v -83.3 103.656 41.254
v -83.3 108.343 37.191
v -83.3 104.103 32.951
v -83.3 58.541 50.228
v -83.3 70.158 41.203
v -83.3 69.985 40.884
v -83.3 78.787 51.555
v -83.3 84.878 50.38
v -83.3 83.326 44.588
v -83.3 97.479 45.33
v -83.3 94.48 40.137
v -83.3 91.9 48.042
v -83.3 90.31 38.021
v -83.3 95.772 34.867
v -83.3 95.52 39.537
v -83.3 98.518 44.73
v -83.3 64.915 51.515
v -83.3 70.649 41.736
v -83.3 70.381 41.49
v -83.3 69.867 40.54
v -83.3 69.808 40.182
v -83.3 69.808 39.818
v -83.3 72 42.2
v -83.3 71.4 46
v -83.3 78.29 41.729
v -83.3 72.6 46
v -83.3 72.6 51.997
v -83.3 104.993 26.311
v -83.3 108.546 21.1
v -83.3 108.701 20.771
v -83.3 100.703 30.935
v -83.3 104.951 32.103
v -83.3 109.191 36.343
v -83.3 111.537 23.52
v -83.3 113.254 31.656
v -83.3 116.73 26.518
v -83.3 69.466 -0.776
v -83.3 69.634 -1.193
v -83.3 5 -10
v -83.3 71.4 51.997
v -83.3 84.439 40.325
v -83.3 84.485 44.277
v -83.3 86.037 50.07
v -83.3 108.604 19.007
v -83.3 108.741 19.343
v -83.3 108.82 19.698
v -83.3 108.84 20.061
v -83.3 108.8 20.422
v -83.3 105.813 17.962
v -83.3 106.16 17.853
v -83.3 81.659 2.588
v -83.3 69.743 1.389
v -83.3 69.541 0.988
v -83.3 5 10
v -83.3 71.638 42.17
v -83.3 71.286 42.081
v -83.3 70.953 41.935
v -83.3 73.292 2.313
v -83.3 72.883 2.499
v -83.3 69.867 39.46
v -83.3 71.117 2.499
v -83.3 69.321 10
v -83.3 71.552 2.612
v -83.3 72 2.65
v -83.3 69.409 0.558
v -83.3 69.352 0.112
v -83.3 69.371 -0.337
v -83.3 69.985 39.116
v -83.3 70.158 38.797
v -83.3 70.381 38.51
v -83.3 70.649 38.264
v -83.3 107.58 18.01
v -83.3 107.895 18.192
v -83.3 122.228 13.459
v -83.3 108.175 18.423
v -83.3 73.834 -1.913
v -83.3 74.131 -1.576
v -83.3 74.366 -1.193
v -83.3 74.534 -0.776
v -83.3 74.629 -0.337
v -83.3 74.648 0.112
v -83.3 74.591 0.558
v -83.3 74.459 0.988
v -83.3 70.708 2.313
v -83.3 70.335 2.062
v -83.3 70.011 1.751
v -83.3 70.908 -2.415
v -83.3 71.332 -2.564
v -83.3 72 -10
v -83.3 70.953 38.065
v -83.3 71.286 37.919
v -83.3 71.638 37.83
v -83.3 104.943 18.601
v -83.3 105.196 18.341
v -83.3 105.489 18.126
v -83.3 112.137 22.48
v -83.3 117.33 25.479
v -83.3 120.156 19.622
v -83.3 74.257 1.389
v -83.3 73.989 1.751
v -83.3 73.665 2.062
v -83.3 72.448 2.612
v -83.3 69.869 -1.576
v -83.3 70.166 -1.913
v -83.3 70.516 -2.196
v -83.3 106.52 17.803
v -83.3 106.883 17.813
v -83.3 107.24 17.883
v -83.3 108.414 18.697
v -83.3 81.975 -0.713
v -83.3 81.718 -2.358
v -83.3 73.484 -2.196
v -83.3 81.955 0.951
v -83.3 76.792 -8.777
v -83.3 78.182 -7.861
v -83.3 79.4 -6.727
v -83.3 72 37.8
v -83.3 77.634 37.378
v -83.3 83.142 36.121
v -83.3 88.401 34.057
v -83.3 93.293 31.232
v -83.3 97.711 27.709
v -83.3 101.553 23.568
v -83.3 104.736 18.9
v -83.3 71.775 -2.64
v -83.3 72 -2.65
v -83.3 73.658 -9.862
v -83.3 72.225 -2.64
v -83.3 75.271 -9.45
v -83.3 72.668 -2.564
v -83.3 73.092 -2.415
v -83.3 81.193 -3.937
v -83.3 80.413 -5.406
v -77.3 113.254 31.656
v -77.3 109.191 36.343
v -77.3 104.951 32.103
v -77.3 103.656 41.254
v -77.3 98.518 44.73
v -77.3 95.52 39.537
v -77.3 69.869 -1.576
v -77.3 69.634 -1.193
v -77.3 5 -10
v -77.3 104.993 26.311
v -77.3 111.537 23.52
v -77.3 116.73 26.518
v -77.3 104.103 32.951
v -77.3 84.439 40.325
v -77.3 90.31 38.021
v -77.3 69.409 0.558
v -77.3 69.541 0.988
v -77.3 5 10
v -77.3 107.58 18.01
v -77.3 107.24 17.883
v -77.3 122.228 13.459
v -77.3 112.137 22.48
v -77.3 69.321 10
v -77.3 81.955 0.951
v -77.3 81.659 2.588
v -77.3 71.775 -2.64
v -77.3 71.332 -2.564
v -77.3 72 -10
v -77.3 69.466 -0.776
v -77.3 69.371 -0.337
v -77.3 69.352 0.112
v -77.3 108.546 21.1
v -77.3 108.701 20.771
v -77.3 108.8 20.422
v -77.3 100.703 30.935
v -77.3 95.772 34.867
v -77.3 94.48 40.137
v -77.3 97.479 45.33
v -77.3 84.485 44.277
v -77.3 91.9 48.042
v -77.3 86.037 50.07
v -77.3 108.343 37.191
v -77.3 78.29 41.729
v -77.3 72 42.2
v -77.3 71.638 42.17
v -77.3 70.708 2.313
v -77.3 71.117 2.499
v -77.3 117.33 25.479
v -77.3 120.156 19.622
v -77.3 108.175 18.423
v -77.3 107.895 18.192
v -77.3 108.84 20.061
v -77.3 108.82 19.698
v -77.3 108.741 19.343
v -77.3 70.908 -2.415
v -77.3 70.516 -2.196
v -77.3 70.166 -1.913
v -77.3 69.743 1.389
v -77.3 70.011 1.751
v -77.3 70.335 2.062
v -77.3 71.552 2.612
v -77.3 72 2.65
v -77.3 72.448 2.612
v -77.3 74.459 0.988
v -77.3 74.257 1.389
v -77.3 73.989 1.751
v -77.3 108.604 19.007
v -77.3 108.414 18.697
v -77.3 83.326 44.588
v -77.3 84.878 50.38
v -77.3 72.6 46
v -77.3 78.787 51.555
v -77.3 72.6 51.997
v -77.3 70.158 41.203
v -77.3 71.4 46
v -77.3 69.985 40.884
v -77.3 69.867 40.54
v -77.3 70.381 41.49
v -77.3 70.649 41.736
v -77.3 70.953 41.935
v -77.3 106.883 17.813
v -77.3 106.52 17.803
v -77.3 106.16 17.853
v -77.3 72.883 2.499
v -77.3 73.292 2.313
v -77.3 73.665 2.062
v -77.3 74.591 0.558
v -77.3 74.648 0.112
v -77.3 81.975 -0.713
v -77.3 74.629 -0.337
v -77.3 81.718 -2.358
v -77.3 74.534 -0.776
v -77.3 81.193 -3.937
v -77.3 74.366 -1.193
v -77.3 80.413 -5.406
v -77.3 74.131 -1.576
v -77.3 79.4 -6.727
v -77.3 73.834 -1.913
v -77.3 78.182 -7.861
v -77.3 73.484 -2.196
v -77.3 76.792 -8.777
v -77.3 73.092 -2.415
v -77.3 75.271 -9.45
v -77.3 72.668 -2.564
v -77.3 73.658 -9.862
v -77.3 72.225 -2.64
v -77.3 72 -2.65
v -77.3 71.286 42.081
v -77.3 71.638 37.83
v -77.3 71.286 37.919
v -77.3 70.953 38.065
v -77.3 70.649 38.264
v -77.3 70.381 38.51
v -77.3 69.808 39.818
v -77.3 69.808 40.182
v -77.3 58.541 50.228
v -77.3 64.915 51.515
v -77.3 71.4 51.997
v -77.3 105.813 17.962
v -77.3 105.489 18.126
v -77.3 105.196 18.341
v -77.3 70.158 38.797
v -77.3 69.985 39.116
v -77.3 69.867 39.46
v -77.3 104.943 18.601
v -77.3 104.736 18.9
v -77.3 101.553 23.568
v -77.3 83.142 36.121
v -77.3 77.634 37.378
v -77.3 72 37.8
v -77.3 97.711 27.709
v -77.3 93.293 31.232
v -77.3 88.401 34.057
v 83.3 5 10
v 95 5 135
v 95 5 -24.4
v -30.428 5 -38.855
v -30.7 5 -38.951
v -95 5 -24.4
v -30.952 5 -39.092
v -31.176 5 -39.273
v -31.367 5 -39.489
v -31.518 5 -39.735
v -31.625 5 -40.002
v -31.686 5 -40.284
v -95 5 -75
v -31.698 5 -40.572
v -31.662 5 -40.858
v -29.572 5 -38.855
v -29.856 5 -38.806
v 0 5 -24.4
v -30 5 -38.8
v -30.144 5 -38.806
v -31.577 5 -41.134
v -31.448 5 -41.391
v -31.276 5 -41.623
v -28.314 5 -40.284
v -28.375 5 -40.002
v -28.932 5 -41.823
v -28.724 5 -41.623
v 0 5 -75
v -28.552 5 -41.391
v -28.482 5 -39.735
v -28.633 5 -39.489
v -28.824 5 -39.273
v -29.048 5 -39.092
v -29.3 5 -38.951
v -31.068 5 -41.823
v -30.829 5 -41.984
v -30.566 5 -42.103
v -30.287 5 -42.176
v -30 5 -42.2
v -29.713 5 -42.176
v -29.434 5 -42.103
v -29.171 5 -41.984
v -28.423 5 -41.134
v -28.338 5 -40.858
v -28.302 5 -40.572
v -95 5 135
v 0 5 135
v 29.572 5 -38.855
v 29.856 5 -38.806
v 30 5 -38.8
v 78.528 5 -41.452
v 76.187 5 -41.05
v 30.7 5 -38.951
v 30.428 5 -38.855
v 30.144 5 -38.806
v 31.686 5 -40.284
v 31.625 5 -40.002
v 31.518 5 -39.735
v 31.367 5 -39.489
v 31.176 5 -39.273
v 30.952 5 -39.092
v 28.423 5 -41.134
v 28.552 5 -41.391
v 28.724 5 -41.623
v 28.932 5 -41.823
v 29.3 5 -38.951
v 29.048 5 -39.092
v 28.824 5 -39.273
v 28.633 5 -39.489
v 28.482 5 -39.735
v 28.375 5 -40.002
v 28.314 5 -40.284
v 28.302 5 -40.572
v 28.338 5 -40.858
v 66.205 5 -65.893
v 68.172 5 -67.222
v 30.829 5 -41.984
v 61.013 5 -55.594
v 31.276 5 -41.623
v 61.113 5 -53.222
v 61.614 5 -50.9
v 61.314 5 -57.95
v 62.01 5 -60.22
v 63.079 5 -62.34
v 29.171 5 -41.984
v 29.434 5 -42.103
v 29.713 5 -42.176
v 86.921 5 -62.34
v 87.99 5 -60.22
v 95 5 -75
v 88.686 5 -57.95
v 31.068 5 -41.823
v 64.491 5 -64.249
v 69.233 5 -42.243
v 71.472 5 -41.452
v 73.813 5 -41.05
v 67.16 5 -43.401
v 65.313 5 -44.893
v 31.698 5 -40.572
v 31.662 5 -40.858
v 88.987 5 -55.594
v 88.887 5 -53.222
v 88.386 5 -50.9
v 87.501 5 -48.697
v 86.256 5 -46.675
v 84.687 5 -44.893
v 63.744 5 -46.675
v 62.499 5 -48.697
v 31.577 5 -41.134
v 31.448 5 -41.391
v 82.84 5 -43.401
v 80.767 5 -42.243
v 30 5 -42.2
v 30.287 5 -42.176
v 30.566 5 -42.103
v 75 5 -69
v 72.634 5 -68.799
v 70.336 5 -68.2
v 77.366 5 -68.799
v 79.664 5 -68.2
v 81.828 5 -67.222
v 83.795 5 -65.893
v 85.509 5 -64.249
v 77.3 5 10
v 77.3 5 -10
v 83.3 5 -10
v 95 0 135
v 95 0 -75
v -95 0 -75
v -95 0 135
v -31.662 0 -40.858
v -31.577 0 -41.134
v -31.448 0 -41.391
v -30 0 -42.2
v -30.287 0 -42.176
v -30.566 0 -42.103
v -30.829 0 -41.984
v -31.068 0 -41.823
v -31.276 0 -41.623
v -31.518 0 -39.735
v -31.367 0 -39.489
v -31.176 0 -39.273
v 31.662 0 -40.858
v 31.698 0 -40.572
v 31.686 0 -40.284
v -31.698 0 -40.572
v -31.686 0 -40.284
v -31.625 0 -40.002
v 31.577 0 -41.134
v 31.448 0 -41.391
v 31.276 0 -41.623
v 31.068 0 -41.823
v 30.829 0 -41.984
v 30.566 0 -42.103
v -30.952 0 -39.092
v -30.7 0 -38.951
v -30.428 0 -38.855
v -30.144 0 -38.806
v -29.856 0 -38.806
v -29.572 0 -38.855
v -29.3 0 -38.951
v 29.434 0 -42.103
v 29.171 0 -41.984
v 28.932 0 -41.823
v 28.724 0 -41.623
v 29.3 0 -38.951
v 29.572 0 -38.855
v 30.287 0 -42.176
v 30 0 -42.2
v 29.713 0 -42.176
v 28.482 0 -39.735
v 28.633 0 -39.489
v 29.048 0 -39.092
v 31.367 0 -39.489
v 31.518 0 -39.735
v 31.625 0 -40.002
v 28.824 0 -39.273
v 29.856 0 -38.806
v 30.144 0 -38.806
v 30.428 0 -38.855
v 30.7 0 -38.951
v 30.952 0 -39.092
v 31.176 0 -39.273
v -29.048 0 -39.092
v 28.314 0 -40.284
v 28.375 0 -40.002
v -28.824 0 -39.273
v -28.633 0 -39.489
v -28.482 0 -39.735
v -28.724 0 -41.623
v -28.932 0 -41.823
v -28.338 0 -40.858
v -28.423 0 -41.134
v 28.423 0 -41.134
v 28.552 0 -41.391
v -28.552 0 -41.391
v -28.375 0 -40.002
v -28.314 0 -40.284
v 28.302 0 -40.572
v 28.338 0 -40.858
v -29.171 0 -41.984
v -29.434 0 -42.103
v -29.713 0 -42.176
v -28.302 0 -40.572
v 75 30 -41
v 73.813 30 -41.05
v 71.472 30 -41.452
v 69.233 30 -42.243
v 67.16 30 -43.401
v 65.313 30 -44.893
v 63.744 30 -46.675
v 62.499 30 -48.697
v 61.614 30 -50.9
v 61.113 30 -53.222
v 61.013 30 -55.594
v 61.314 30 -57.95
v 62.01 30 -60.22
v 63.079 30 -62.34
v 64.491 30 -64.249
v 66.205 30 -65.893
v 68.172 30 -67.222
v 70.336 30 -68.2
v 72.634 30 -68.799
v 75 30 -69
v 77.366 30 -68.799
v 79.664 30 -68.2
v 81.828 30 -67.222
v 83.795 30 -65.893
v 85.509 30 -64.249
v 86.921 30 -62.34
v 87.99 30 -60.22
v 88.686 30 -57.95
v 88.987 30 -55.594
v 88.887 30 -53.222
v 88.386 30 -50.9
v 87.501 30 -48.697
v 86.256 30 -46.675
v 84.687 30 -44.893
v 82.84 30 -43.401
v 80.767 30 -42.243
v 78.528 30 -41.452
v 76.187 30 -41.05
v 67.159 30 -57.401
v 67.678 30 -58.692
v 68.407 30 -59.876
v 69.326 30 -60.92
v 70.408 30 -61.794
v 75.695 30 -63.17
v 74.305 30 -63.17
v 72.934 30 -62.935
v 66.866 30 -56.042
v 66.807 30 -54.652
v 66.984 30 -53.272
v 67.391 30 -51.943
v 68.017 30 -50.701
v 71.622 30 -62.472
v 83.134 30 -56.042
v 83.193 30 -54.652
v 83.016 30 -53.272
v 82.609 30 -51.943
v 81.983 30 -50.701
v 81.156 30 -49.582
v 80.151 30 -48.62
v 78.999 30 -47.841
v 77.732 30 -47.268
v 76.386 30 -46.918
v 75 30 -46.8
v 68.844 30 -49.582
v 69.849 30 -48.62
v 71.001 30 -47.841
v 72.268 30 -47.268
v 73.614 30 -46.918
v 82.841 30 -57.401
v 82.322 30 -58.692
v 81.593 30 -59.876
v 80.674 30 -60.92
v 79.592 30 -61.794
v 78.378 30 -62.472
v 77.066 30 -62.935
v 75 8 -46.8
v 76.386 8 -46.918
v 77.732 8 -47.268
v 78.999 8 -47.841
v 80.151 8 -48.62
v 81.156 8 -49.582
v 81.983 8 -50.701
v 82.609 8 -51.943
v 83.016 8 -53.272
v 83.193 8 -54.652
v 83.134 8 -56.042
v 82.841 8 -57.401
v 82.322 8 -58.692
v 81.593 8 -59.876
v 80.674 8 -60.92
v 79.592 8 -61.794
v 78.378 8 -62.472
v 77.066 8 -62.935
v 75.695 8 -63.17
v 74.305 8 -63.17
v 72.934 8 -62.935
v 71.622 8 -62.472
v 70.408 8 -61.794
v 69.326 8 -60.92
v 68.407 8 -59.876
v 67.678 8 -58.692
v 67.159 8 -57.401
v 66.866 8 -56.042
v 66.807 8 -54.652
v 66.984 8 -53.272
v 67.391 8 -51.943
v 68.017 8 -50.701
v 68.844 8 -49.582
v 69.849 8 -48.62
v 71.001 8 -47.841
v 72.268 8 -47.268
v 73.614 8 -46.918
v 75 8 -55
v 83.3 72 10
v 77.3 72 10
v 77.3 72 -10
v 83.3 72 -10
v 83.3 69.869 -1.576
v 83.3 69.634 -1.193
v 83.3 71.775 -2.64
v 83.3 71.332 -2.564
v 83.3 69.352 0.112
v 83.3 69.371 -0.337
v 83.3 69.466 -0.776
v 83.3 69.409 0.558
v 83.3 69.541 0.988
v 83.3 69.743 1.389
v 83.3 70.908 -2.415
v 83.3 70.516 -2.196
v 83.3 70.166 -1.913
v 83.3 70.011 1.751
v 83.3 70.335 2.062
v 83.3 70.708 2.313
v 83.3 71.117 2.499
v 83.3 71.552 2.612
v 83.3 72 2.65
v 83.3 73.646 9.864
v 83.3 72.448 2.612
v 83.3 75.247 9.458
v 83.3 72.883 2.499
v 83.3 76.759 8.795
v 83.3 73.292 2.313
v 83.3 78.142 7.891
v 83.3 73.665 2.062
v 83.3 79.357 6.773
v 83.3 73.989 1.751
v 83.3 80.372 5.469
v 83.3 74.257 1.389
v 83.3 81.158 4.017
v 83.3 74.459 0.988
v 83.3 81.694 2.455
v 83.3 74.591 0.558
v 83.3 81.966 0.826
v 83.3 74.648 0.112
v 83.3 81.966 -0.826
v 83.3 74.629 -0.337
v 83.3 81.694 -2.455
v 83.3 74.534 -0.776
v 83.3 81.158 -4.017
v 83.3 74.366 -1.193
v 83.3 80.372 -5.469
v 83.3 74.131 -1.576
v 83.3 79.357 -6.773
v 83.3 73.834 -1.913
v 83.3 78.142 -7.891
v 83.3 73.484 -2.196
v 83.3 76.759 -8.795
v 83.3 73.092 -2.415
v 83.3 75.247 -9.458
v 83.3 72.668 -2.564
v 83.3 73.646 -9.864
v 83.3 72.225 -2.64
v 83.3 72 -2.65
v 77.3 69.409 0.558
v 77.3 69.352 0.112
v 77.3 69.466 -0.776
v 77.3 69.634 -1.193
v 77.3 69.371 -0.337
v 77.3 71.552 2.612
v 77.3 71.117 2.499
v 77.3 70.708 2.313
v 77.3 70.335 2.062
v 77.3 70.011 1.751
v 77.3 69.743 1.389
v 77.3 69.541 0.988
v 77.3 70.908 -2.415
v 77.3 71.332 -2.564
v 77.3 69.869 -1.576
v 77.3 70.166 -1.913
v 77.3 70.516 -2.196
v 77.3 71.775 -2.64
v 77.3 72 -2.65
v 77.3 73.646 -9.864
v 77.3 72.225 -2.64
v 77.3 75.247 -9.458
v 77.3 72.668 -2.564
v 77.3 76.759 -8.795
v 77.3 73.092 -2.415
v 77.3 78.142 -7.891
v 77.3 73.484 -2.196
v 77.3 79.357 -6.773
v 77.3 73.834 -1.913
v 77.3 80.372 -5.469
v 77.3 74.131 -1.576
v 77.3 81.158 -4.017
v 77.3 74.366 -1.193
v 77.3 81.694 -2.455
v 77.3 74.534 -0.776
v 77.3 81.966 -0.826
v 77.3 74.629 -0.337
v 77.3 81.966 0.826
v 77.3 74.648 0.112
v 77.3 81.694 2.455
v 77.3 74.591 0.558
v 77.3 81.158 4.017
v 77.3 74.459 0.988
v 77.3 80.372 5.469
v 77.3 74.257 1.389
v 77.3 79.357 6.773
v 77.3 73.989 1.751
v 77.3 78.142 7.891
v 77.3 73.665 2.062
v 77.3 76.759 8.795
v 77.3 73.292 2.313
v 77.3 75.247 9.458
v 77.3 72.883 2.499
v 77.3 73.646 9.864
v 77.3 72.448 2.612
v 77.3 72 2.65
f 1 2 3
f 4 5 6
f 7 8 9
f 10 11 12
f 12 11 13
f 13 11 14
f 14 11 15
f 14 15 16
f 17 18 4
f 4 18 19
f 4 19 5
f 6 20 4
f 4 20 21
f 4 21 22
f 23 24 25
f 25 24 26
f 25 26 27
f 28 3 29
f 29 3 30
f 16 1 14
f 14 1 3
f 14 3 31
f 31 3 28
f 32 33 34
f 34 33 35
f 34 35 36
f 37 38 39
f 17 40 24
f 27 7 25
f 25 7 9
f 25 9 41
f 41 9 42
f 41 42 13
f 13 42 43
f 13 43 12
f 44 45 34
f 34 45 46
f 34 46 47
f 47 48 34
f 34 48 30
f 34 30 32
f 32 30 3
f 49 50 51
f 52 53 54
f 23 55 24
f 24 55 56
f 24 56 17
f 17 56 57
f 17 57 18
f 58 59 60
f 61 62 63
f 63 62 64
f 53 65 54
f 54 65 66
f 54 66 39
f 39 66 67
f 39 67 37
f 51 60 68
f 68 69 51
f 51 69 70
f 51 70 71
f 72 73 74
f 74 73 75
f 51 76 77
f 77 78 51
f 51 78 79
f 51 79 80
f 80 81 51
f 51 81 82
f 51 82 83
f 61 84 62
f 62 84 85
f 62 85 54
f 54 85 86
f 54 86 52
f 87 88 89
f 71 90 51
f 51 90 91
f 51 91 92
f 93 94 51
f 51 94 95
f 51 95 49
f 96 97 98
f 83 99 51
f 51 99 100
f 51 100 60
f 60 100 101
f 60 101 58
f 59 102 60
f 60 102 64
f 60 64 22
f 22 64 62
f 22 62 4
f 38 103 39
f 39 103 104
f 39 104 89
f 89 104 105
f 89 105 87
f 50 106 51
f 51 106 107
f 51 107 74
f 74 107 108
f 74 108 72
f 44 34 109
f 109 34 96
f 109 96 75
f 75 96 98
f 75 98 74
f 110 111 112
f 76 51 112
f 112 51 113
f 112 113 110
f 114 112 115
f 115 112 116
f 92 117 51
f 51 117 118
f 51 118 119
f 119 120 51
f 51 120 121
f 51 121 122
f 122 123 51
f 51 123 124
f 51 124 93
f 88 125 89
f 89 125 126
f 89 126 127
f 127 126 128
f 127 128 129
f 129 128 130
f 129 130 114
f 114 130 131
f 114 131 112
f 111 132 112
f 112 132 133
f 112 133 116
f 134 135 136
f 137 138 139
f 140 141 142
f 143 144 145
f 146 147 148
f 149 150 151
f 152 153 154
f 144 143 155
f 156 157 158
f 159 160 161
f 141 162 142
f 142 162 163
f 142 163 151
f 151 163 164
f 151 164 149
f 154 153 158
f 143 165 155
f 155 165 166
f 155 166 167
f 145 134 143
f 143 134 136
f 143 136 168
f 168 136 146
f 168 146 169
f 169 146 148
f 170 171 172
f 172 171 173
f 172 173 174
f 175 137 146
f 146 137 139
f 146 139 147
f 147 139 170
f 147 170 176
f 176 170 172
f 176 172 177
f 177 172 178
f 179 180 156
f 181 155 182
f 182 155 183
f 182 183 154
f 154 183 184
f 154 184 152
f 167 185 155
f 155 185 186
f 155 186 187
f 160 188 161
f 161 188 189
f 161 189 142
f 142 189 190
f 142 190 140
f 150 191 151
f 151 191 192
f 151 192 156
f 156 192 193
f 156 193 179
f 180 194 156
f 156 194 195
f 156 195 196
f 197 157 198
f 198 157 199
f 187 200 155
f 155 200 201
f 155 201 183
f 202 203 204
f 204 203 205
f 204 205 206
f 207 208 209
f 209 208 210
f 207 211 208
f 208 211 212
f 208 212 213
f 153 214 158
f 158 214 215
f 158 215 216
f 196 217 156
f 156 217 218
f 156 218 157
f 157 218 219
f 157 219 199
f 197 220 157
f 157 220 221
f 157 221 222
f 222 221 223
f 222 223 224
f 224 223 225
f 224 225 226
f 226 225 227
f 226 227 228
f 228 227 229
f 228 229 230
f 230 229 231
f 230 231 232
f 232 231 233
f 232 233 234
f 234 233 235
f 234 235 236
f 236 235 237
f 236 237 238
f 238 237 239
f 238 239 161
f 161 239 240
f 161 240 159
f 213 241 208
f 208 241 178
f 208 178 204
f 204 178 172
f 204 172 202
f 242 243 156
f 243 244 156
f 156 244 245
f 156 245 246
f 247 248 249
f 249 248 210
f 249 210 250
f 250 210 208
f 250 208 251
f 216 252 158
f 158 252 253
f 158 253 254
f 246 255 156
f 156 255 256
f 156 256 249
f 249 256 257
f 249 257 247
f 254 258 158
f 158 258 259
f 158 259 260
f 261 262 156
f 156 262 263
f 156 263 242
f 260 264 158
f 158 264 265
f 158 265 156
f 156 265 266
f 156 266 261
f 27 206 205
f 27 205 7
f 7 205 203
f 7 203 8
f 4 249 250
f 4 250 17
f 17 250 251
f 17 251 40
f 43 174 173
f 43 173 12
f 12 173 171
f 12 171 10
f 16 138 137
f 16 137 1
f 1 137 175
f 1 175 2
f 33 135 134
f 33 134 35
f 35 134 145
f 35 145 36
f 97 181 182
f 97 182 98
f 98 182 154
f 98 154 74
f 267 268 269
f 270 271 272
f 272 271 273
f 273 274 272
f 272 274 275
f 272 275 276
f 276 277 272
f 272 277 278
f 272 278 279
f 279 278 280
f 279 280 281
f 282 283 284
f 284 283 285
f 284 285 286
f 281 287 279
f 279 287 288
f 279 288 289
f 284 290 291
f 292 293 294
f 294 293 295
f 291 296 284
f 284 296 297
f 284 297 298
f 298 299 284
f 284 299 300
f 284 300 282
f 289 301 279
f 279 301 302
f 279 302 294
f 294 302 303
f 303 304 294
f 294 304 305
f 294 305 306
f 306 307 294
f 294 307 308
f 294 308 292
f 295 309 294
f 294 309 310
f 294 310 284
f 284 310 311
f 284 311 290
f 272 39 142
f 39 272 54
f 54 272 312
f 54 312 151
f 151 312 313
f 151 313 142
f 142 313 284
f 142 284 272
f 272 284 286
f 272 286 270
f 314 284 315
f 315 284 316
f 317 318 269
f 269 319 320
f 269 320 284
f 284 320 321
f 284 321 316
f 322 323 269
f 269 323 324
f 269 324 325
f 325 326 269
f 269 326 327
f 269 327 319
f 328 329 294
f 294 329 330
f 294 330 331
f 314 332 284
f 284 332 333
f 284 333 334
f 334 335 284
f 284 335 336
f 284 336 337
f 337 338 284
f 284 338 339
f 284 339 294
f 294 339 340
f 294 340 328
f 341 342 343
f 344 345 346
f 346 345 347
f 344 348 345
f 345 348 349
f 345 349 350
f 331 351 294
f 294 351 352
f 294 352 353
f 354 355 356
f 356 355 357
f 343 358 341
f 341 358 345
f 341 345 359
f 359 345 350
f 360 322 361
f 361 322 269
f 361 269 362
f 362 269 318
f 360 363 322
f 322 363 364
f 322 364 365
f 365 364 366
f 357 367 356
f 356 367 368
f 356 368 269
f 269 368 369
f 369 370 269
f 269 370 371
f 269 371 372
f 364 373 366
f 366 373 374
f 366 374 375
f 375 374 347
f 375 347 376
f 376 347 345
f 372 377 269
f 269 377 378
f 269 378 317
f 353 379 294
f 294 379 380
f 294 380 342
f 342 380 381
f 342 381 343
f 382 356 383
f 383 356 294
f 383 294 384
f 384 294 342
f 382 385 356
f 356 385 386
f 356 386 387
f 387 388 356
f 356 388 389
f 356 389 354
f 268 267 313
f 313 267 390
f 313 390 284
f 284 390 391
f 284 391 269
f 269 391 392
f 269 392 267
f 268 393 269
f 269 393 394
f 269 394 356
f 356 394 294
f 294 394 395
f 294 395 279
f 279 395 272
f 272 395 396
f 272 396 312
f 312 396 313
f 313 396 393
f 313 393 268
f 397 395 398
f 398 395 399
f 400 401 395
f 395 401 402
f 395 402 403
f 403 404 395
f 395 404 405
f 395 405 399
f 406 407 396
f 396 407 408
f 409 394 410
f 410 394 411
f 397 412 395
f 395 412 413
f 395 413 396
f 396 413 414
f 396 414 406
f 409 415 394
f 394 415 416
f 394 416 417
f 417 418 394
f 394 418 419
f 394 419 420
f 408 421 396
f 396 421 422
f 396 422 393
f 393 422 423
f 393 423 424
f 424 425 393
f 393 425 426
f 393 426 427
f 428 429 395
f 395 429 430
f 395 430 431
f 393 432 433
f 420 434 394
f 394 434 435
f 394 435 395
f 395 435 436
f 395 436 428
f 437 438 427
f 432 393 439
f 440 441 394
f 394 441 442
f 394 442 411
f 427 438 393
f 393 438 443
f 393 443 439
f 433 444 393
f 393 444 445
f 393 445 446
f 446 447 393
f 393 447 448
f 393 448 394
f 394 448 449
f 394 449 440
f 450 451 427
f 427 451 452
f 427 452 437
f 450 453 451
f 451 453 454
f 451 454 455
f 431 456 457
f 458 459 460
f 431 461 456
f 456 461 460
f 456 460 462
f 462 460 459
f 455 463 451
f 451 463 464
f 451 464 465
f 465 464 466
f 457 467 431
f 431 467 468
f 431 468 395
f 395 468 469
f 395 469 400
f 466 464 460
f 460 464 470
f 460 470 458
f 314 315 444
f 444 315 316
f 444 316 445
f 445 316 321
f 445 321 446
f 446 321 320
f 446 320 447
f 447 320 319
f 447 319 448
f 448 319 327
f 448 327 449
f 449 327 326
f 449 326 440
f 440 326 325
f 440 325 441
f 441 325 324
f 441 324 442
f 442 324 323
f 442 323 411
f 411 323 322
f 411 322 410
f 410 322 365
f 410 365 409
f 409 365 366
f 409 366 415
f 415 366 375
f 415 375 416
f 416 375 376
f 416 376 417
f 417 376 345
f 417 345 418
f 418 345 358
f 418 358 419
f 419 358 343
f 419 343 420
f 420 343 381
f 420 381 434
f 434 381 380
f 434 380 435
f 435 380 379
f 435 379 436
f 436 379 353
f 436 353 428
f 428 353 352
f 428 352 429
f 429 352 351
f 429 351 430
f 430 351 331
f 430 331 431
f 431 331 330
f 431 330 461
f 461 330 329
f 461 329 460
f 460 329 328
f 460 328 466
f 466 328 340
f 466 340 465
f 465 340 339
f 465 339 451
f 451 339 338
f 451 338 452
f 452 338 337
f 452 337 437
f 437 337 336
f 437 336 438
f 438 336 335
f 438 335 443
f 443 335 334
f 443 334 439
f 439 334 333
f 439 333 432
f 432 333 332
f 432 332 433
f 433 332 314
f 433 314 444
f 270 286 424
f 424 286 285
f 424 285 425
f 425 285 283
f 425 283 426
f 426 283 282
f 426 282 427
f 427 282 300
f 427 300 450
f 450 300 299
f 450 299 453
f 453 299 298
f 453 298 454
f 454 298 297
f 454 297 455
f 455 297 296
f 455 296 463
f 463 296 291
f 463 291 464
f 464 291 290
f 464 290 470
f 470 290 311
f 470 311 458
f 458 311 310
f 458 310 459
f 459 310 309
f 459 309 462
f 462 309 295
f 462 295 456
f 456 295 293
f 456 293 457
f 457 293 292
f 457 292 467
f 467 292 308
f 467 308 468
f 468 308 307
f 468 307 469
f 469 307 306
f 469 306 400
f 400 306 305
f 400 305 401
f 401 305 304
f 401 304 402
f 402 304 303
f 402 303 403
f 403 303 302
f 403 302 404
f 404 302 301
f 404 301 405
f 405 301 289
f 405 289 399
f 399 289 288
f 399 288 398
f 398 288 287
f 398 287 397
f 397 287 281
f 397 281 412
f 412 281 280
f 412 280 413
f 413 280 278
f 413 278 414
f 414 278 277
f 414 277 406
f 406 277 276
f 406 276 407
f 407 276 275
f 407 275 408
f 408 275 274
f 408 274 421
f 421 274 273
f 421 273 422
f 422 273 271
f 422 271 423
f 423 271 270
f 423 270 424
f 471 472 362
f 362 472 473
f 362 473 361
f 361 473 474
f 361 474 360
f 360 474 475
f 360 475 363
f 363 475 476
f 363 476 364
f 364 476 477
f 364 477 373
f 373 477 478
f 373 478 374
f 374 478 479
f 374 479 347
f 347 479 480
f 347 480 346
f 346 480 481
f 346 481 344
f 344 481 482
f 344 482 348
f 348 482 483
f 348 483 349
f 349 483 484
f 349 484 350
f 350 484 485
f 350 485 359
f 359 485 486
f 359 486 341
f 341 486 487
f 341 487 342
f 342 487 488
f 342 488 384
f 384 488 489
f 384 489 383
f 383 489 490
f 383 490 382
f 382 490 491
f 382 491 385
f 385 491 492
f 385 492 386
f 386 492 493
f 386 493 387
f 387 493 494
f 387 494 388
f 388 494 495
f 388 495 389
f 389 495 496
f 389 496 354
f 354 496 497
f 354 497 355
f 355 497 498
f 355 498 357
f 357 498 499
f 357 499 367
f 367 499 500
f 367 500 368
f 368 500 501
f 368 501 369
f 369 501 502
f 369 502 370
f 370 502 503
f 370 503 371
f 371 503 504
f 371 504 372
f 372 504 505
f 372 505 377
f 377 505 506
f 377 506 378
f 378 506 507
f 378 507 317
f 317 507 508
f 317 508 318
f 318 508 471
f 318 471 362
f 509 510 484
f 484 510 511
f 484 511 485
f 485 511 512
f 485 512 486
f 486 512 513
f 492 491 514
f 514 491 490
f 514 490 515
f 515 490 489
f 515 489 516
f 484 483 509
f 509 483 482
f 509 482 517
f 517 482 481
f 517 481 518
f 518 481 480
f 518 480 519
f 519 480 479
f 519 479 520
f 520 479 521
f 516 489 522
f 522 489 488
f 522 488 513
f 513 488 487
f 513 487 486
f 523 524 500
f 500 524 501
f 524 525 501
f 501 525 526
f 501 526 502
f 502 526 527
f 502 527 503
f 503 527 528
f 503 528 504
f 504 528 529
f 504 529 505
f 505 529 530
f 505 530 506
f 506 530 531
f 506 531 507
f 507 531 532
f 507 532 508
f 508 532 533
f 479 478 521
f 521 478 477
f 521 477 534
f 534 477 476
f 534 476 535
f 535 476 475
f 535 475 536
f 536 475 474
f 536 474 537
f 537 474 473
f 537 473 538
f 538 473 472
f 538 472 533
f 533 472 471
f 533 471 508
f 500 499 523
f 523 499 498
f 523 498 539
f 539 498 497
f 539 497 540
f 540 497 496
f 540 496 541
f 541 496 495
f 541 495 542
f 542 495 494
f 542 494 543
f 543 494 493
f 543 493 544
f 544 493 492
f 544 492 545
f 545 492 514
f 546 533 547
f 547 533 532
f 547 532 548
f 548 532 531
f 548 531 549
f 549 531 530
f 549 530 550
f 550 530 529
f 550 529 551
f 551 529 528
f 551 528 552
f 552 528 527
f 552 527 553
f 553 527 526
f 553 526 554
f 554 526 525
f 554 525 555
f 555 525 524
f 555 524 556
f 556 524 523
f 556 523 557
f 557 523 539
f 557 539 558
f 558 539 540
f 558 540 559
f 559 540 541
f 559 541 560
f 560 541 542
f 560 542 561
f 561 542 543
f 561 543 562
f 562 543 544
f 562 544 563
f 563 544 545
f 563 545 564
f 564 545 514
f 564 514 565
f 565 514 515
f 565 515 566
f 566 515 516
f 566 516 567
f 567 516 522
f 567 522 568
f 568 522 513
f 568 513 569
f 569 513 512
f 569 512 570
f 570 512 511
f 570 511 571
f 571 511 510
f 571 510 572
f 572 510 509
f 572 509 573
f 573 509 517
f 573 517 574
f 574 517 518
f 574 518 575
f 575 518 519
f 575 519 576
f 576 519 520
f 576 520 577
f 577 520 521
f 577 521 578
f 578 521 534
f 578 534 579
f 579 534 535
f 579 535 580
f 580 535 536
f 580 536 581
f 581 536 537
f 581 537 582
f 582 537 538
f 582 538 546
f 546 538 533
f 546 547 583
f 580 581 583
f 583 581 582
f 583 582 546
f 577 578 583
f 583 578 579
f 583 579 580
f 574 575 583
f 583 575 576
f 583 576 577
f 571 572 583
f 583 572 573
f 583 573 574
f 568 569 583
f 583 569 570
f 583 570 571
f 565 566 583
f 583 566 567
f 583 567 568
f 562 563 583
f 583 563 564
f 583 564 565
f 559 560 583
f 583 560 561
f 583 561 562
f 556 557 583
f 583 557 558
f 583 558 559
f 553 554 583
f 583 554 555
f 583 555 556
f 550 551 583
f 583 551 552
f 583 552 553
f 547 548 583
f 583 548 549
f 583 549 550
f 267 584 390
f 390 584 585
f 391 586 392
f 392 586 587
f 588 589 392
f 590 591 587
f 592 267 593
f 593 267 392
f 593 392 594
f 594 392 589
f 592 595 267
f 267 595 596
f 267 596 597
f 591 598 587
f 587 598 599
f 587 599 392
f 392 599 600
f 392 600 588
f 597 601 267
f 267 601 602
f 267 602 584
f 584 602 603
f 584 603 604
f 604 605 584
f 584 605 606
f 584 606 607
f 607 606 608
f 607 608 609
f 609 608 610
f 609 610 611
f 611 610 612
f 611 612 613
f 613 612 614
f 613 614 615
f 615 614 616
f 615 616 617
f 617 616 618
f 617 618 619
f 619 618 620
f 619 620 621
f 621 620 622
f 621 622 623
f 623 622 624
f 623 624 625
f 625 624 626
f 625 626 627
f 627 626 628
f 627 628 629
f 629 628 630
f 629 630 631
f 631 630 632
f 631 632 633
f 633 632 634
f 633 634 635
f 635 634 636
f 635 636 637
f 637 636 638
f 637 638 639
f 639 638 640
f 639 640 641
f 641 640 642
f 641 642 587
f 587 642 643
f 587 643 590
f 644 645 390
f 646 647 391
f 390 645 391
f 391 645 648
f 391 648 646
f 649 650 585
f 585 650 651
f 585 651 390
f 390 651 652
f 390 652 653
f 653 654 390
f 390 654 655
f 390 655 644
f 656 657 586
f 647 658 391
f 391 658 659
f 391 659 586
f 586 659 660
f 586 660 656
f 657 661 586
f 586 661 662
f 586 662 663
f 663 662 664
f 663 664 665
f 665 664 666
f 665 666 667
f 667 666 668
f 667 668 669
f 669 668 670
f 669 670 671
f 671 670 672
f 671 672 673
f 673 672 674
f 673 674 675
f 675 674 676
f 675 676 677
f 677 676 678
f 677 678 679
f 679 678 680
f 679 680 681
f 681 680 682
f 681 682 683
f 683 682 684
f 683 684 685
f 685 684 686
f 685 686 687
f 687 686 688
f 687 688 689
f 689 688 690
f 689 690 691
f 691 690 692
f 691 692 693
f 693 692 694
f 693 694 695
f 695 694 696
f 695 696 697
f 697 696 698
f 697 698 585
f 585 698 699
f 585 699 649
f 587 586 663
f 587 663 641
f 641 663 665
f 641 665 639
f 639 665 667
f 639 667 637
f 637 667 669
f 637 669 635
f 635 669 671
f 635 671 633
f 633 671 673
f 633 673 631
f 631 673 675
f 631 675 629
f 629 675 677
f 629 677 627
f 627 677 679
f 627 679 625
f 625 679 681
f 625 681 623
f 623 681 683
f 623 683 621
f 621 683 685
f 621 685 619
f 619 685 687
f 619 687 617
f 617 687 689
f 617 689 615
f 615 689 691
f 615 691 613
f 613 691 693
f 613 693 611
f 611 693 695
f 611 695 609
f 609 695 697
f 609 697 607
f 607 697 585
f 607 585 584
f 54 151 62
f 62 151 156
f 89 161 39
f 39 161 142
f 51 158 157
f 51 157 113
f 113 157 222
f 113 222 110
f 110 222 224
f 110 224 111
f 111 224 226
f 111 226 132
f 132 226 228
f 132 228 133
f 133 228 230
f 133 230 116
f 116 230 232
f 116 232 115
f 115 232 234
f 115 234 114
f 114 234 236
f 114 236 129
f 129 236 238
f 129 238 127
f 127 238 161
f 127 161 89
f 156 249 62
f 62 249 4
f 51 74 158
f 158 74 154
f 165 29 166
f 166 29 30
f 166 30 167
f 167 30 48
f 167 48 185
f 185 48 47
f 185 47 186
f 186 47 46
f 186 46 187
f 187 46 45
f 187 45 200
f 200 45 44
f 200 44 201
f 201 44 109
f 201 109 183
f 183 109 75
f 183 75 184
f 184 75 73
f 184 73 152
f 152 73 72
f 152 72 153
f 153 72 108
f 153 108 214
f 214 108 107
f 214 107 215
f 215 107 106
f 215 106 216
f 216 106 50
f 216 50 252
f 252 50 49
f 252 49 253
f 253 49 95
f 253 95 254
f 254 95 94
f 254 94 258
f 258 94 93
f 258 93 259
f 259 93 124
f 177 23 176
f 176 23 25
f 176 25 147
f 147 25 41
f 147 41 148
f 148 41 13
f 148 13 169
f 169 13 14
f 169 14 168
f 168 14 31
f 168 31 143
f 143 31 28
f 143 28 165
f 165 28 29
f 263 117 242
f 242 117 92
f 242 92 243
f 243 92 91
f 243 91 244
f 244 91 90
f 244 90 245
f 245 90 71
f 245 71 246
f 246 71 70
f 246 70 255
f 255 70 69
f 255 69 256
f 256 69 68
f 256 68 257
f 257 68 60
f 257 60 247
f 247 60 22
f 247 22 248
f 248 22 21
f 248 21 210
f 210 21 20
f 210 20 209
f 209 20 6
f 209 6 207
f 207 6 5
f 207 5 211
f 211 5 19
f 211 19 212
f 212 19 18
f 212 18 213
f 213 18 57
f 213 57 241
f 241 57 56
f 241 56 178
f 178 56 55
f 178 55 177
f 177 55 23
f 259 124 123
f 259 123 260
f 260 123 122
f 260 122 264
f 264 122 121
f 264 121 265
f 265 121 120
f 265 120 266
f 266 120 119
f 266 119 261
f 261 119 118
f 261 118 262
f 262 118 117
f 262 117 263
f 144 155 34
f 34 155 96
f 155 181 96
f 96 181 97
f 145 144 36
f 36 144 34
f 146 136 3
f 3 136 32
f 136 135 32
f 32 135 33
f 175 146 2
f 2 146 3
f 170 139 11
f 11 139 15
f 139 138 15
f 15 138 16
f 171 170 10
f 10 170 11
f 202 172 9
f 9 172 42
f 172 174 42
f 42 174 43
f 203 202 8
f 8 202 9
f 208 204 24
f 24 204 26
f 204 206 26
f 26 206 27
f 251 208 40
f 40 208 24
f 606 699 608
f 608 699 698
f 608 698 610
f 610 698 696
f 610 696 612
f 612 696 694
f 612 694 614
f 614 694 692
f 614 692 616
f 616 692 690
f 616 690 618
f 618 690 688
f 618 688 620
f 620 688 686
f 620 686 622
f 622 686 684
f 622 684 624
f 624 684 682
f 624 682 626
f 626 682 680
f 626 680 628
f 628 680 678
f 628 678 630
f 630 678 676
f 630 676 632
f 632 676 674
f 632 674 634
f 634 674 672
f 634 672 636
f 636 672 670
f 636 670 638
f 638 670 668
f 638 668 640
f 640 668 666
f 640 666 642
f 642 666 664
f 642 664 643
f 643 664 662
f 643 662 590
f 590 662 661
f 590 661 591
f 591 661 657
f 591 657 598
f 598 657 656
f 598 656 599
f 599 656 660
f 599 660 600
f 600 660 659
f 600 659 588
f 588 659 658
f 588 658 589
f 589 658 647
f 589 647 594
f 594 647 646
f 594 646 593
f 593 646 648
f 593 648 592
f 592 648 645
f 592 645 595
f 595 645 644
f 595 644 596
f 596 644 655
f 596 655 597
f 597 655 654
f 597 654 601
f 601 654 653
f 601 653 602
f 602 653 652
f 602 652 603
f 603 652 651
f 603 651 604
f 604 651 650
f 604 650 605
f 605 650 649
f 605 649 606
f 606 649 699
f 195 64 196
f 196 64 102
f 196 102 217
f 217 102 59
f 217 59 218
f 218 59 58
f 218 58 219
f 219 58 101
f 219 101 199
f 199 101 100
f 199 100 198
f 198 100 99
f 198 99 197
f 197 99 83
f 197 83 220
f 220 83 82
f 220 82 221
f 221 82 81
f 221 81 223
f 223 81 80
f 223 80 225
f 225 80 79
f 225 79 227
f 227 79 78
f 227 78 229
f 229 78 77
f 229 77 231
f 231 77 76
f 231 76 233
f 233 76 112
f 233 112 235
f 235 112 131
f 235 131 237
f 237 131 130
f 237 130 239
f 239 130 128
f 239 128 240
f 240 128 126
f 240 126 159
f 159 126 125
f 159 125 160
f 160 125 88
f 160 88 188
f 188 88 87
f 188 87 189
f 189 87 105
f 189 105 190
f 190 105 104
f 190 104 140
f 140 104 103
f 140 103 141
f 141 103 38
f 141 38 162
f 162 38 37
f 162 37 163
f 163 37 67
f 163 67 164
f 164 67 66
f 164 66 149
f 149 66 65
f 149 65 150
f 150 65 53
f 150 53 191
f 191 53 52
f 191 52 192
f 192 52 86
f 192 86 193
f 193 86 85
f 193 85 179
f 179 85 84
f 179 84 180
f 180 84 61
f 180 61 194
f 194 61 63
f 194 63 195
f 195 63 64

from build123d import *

# Parameters (mm, degrees)
CROQUIS_BASE_W               = 190
CROQUIS_BASE_H               = 210
PLACA_BASE_DEPTH             = 5
AGUJEROS_CAJA_DEPTH          = 166.151445649
AGUJEROS_CAJA_DEPTH_BACK     = 166.151445649
CROQUIS_TORNILLOS_CAJA_R     = 1.7
CROQUIS_ZOCALO_R             = 14
ZOCALO_MASTIL_DEPTH          = 25
CROQUIS_ZOCALO_HUECO_R       = 8.2
ZOCALO_HUECO_DEPTH           = 22
TORRE_DERECHA_DEPTH          = 6
TORRE_IZQUIERDA_START        = -6
TORRE_IZQUIERDA_DEPTH        = 6
ABANICO_DEPTH                = 6
RANURA_ARCO_DEPTH            = 206.401360592
RANURA_ARCO_DEPTH_BACK       = 206.401360592
MARCAS_ANGULO_DEPTH          = 206.401360592
MARCAS_ANGULO_DEPTH_BACK     = 206.401360592
CROQUIS_MARCAS_15_W          = 6.5
CROQUIS_MARCAS_15_H          = 1.2
AGUJERO_PIVOTE_M5_DEPTH      = 206.401360592
AGUJERO_PIVOTE_M5_DEPTH_BACK = 206.401360592
CROQUIS_PIVOTE_R             = 2.65


with BuildPart() as part:
    # Croquis_base → Placa_base (new body)
    with BuildSketch(Plane(origin=(0, 0, 0), x_dir=(1, 0, 0), z_dir=(0, 1, 0))):
        with Locations((0, -30)):
            Rectangle(CROQUIS_BASE_W, CROQUIS_BASE_H)
    extrude(amount=PLACA_BASE_DEPTH)

    # Croquis_tornillos_caja → Agujeros_caja (cut, two sides: drawn at the far end of the back side and taken through both)
    with BuildSketch(Plane(origin=(0, 0, 0), x_dir=(1, 0, 0), z_dir=(0, 1, 0)).offset(-AGUJEROS_CAJA_DEPTH_BACK)):
        with Locations(Location((-30, 40.5, 0), (0, 0, 90))):
            Circle(CROQUIS_TORNILLOS_CAJA_R)
        with Locations(Location((30, 40.5, 0), (0, 0, 90))):
            Circle(CROQUIS_TORNILLOS_CAJA_R)
    extrude(amount=AGUJEROS_CAJA_DEPTH + AGUJEROS_CAJA_DEPTH_BACK, mode=Mode.SUBTRACT)

    # Croquis_zocalo → Zocalo_mastil (add)
    with BuildSketch(Plane(origin=(0, 5, 0), x_dir=(1, 0, 0), z_dir=(0, 1, 0))):
        with Locations(Location((75, 55, 0), (0, 0, 90))):
            Circle(CROQUIS_ZOCALO_R)
    extrude(amount=ZOCALO_MASTIL_DEPTH)

    # Croquis_zocalo_hueco → Zocalo_hueco (cut)
    with BuildSketch(Plane(origin=(0, 30, 0), x_dir=(1, 0, 0), z_dir=(0, 1, 0))):
        with Locations(Location((75, 55, 0), (0, 0, 270))):
            Circle(CROQUIS_ZOCALO_HUECO_R)
    extrude(amount=-ZOCALO_HUECO_DEPTH, mode=Mode.SUBTRACT)

    # Croquis_torre_der → Torre_derecha (add)
    with BuildSketch(Plane(origin=(77.3, 0, 0), x_dir=(0, 0, -1), z_dir=(1, 0, 0))):
        with BuildLine():
            Line((-10, 0), (10, 0))
            Line((10, 0), (10, 72))
            ThreePointArc((10, 72), (0, 82), (-10, 72))
            Line((-10, 72), (-10, 0))
        make_face()
    extrude(amount=TORRE_DERECHA_DEPTH)

    # Croquis_torre_izq → Torre_izquierda (add)
    with BuildSketch(Plane(origin=(-77.3, 0, 0), x_dir=(0, 0, -1), z_dir=(1, 0, 0)).offset(TORRE_IZQUIERDA_START)):
        with BuildLine():
            Line((-10, 0), (10, 0))
            Line((10, 0), (10, 72))
            ThreePointArc((10, 72), (0, 82), (-10, 72))
            Line((-10, 72), (-10, 0))
        make_face()
    extrude(amount=TORRE_IZQUIERDA_DEPTH)

    # Croquis_abanico → Abanico (add)
    with BuildSketch(Plane(origin=(-77.3, 0, 0), x_dir=(0, 0, -1), z_dir=(1, 0, 0))):
        with BuildLine():
            Line((0, 72), (-13.458590345, 122.228142967))
            ThreePointArc((-13.458590345, 122.228142967), (-45.033320997, 98), (-50.228142967, 58.541409655))
            Line((-50.228142967, 58.541409655), (0, 72))
        make_face()
    extrude(amount=-ABANICO_DEPTH)

    # Croquis_ranura_arco → Ranura_arco (cut, two sides: drawn at the far end of the back side and taken through both)
    with BuildSketch(Plane(origin=(0, 0, 0), x_dir=(0, 0, -1), z_dir=(1, 0, 0)).offset(-RANURA_ARCO_DEPTH_BACK)):
        with BuildLine():
            ThreePointArc((-21.1, 108.54627204), (-36.54627204, 93.1), (-42.2, 72))
            ThreePointArc((-42.2, 72), (-40, 69.8), (-37.8, 72))
            ThreePointArc((-37.8, 72), (-32.735760263, 90.9), (-18.9, 104.735760263))
            ThreePointArc((-18.9, 104.735760263), (-18.094744112, 107.741016151), (-21.1, 108.54627204))
        make_face()
    extrude(amount=RANURA_ARCO_DEPTH + RANURA_ARCO_DEPTH_BACK, mode=Mode.SUBTRACT)

    # Croquis_marcas_15 → Marcas_angulo (cut, two sides: drawn at the far end of the back side and taken through both)
    with BuildSketch(Plane(origin=(0, 0, 0), x_dir=(0, 0, -1), z_dir=(1, 0, 0)).offset(-MARCAS_ANGULO_DEPTH_BACK)):
        with Locations((-49.25, 72)):
            Rectangle(CROQUIS_MARCAS_15_W, CROQUIS_MARCAS_15_H)
        Polygon((-44.587879436, 83.326120579), (-50.866397307, 85.008444372), (-50.555814453, 86.167555364), (-44.277296582, 84.48523157), align=None)
        Polygon((-40.137168574, 94.480384758), (-45.766333699, 97.730384758), (-45.166333699, 98.769615242), (-39.537168574, 95.519615242), align=None)
        Polygon((-32.951176003, 104.102647866), (-37.547370081, 108.698841944), (-36.698841944, 109.547370081), (-32.102647866, 104.951176003), align=None)
        Polygon((-23.519615242, 111.537168574), (-26.769615242, 117.166333699), (-25.730384758, 117.766333699), (-22.480384758, 112.137168574), align=None)
    extrude(amount=MARCAS_ANGULO_DEPTH + MARCAS_ANGULO_DEPTH_BACK, mode=Mode.SUBTRACT)

    # Croquis_pivote → Agujero_pivote_M5 (cut, two sides: drawn at the far end of the back side and taken through both)
    with BuildSketch(Plane(origin=(0, 0, 0), x_dir=(0, 0, -1), z_dir=(1, 0, 0)).offset(-AGUJERO_PIVOTE_M5_DEPTH_BACK)):
        with Locations((0, 72)):
            Circle(CROQUIS_PIVOTE_R)
    extrude(amount=AGUJERO_PIVOTE_M5_DEPTH + AGUJERO_PIVOTE_M5_DEPTH_BACK, mode=Mode.SUBTRACT)


solid = part.part
